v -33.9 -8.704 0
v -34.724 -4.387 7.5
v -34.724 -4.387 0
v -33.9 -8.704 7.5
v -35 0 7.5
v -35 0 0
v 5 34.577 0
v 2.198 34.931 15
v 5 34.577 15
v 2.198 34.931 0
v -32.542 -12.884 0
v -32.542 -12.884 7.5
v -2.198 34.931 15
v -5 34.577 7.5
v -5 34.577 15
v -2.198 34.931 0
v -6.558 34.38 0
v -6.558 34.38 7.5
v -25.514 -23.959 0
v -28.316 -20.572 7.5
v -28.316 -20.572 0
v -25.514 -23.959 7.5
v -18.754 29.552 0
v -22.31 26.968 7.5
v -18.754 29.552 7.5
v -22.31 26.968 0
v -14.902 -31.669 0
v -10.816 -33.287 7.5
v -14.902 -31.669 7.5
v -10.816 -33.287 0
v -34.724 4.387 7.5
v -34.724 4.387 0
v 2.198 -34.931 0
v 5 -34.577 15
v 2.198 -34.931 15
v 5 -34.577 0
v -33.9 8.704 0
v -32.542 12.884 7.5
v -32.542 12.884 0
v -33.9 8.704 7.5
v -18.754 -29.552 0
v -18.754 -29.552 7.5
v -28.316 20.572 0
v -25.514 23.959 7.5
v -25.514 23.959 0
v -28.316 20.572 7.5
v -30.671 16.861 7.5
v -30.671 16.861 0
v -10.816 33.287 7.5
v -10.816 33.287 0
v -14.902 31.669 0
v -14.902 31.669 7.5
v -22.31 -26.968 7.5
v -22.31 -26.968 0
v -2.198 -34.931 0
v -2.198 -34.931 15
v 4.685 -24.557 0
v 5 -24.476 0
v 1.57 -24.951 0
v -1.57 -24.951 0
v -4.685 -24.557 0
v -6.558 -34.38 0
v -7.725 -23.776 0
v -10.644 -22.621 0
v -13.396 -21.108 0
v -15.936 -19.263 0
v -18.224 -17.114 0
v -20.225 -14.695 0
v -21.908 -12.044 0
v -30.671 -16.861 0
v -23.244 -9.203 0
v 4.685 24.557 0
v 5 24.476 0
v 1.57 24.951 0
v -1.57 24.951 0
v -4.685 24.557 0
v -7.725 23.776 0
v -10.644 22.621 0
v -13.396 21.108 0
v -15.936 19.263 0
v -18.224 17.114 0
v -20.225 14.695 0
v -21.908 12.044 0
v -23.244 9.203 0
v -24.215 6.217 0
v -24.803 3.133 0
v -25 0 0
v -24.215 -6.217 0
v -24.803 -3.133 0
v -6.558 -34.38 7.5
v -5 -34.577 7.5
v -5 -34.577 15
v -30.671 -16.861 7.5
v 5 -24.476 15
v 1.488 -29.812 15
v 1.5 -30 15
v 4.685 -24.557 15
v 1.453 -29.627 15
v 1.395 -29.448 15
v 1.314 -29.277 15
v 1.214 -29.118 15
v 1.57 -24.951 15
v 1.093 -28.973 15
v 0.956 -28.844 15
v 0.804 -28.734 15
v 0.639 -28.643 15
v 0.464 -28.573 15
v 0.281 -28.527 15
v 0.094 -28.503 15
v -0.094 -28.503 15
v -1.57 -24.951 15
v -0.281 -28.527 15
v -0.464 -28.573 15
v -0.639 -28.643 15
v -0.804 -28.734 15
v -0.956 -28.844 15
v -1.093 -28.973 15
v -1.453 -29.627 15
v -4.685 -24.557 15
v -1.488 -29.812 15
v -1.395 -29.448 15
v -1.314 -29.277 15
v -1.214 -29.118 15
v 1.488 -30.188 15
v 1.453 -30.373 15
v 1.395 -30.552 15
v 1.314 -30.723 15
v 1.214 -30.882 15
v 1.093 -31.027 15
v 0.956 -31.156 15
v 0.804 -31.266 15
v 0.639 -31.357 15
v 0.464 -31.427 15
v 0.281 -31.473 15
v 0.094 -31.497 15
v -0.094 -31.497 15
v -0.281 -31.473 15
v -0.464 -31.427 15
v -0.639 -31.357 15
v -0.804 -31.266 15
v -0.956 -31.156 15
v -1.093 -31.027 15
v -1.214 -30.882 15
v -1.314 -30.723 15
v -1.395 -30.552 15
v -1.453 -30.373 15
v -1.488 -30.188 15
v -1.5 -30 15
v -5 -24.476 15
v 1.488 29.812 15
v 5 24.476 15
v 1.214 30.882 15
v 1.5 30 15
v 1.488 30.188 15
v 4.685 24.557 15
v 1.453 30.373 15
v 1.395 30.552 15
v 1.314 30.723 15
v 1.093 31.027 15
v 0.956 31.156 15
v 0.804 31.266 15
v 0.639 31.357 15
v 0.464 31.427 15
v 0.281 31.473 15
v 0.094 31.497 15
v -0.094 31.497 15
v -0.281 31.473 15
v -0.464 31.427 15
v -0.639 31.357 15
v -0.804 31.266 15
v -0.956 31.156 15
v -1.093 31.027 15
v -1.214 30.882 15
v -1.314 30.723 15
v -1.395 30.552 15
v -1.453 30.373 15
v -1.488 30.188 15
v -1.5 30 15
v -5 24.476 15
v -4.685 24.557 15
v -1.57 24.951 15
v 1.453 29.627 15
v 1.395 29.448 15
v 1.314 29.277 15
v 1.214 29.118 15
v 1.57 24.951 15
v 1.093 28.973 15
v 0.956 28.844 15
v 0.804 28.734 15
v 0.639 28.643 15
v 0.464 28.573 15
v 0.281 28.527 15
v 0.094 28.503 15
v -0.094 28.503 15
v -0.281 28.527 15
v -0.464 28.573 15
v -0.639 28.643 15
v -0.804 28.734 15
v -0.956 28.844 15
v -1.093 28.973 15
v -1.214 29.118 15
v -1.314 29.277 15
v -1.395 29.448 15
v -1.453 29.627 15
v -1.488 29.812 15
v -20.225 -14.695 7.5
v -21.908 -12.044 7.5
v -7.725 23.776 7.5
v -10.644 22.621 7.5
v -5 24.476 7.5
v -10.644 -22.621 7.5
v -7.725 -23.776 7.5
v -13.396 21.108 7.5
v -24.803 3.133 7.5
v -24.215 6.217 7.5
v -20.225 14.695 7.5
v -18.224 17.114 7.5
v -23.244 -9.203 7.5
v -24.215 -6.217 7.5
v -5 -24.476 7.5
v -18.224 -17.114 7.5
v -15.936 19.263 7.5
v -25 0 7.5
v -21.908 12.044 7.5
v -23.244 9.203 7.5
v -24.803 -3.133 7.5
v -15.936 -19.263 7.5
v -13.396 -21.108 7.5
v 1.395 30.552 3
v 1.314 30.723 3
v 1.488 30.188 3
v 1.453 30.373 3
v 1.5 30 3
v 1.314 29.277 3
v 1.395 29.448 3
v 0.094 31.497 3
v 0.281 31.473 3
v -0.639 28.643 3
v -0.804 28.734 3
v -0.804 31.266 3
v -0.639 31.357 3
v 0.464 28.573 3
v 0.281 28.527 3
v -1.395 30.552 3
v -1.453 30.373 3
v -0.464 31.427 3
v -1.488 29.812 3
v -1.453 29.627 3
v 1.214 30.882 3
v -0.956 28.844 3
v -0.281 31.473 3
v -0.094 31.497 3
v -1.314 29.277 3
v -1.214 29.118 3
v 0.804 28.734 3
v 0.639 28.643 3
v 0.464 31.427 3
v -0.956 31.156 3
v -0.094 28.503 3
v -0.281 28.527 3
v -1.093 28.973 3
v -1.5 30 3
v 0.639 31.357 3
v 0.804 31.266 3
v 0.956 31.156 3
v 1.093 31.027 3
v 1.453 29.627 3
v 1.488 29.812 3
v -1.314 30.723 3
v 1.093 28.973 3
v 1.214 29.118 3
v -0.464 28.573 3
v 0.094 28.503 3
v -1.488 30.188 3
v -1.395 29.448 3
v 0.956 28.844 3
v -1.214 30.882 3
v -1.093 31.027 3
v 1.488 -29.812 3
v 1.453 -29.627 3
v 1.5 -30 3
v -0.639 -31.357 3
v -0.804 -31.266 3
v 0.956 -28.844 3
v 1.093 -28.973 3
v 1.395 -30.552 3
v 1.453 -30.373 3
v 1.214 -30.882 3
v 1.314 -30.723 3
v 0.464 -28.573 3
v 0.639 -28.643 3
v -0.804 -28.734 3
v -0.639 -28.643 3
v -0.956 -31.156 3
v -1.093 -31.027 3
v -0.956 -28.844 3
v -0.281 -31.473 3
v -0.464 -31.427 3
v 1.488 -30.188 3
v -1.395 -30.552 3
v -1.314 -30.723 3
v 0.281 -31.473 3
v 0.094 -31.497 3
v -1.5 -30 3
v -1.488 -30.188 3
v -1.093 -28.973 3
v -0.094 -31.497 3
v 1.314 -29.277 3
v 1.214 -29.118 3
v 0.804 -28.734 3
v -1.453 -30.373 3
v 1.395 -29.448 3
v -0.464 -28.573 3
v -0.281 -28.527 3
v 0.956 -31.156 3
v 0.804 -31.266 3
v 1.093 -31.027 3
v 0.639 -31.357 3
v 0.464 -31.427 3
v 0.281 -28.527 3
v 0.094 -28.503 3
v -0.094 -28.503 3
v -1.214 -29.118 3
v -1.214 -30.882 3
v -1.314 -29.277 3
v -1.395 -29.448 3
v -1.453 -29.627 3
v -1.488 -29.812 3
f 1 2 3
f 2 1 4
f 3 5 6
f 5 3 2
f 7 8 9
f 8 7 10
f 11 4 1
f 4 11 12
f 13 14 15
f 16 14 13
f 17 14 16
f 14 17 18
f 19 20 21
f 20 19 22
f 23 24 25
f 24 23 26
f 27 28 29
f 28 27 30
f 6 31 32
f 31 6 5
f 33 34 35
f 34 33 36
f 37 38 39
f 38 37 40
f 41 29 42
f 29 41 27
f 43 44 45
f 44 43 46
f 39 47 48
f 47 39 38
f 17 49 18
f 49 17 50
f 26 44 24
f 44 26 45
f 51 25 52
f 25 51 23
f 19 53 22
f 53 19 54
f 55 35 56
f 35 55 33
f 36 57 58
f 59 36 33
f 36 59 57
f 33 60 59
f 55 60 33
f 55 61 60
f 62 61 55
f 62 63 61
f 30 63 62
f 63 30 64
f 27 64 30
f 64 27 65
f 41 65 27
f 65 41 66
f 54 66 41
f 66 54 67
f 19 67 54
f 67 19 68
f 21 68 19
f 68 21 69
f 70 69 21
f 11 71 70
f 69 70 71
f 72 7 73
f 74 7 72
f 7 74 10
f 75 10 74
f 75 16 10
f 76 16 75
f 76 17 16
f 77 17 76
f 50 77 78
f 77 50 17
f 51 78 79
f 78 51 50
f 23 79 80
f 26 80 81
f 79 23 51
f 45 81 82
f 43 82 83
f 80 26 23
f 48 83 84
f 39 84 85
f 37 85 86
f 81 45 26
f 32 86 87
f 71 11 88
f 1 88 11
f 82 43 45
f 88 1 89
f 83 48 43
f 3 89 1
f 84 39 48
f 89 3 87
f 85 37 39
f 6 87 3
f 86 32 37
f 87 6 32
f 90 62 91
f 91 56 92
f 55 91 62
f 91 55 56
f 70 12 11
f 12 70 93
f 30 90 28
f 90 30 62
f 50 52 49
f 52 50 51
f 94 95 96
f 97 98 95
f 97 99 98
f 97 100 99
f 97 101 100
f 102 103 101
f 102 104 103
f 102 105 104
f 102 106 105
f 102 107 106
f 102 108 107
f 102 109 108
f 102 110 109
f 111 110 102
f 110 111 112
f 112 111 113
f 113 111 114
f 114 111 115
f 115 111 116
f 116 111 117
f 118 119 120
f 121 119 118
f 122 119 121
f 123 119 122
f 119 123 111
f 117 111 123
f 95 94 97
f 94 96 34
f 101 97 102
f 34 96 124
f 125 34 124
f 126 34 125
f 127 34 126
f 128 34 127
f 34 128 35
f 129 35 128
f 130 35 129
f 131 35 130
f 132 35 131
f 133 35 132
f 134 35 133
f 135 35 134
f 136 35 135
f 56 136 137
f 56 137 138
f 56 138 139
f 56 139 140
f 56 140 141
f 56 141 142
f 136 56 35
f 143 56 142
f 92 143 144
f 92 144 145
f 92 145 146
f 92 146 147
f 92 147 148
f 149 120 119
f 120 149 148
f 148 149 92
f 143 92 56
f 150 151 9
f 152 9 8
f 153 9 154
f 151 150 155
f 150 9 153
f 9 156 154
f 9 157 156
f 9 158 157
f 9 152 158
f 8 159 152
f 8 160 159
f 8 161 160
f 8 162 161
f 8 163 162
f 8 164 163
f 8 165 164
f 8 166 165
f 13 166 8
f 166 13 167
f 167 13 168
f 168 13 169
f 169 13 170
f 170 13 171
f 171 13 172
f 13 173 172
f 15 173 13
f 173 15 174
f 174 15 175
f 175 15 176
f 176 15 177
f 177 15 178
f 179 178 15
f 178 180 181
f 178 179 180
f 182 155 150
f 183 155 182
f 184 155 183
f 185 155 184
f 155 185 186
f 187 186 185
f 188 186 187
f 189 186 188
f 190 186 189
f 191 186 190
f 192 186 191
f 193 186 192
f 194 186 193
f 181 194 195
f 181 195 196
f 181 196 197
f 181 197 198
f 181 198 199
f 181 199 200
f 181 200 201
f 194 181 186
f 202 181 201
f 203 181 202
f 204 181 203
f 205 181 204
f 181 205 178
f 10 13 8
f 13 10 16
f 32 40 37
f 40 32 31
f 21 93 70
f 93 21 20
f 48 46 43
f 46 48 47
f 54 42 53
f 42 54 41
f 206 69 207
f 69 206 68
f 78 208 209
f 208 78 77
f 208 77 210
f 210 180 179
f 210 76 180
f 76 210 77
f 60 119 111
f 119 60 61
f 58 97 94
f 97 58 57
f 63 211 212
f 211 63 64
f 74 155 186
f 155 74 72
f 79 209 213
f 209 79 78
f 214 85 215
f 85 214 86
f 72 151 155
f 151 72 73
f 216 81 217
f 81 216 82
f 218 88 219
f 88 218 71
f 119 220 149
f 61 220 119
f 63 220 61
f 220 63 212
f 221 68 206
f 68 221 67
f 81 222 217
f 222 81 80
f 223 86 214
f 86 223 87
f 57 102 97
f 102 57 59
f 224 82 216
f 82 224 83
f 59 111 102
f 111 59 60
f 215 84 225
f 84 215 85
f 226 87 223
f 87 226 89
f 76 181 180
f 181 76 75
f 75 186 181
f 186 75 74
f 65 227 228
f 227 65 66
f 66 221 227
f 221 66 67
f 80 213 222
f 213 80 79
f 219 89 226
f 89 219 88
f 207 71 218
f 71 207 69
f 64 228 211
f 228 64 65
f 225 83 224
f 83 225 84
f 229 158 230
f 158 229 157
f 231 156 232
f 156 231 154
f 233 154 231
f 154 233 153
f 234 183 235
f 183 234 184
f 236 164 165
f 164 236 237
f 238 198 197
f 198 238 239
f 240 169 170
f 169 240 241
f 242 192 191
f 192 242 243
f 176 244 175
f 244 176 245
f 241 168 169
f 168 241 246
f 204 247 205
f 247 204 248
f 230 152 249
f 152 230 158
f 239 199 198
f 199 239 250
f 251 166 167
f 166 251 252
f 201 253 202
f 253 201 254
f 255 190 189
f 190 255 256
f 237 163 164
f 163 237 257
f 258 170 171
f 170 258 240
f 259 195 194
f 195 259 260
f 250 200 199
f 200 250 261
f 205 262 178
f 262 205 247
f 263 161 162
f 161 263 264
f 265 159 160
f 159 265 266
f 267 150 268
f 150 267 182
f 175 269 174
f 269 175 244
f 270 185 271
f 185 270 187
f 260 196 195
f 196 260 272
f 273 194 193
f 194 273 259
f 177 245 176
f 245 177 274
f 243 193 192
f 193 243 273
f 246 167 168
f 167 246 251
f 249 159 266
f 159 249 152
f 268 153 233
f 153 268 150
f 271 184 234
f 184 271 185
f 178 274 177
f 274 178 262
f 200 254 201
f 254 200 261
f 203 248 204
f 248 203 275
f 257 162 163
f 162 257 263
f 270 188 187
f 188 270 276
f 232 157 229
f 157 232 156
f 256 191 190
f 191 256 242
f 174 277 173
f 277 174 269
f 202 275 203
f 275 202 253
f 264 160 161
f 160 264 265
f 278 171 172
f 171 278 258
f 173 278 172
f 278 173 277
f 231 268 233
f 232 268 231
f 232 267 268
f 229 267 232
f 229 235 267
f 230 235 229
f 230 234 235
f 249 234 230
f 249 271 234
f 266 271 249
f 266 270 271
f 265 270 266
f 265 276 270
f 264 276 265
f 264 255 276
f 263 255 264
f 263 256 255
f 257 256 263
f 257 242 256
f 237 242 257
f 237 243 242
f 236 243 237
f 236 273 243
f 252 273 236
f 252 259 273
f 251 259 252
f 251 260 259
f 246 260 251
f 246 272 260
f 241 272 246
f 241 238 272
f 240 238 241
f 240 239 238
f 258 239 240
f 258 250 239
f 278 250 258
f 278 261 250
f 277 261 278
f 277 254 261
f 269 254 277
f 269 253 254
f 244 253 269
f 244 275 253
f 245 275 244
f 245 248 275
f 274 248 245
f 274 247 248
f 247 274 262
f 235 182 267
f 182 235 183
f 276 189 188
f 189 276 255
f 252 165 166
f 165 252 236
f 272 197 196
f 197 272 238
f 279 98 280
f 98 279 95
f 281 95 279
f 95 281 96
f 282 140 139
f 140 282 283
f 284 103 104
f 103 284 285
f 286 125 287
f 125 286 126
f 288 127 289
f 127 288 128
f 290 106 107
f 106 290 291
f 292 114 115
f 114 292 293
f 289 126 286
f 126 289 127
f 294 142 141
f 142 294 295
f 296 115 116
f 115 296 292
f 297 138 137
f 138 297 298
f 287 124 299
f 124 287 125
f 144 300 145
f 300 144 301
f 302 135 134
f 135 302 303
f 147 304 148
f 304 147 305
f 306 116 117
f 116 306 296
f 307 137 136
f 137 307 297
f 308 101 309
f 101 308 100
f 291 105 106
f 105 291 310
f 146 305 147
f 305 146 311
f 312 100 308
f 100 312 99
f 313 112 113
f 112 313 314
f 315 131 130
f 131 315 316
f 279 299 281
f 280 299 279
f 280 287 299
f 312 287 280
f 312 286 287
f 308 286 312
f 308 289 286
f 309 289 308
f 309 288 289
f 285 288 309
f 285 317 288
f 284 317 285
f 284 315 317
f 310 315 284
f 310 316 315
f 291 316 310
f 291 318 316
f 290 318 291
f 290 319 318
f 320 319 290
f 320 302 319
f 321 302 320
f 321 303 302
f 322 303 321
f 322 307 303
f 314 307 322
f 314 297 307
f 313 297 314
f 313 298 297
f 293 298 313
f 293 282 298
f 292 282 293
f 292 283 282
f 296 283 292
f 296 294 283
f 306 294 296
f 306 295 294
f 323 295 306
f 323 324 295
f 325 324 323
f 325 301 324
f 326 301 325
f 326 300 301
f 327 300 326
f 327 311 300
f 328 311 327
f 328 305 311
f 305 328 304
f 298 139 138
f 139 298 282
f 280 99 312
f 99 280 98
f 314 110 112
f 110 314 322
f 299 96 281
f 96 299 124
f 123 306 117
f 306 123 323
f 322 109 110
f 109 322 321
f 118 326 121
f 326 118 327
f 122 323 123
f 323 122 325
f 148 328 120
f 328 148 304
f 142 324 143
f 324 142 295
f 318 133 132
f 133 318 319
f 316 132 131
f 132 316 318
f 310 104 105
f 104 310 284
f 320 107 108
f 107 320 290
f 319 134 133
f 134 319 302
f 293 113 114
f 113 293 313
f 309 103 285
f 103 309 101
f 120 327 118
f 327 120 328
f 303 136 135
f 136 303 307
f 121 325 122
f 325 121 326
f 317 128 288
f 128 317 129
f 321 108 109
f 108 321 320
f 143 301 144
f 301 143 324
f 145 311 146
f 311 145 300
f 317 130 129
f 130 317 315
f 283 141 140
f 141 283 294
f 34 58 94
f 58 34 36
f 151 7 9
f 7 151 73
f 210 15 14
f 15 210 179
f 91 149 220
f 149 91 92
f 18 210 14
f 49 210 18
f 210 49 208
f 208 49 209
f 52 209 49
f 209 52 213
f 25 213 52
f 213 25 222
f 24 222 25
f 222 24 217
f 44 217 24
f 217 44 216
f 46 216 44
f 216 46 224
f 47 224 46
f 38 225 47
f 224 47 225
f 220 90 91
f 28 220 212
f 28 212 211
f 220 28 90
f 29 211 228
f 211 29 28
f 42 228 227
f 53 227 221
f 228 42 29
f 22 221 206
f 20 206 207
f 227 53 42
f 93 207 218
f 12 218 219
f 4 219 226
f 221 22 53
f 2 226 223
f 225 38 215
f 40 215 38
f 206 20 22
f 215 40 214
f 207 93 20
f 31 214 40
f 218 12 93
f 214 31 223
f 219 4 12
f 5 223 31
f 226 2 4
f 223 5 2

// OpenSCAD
$fn=50;
H=15;
V=60;
HW=10;
module main() {
    difference() {
      cylinder(H,d=V+HW);
      cylinder(H,d=V-HW);
      #translate([0,V/2,3]) cylinder(H*2,d=3);
      #translate([0,-V/2,3]) cylinder(H*2,d=3);
      translate([HW/2,-(V+HW)/2,0]) cube([V+HW,V+HW,H]);
      #translate([-V-HW*3/2,-(V+HW)/2,H/2]) cube([V+HW,V+HW,H/2]);
    
  }
  
}
main();
